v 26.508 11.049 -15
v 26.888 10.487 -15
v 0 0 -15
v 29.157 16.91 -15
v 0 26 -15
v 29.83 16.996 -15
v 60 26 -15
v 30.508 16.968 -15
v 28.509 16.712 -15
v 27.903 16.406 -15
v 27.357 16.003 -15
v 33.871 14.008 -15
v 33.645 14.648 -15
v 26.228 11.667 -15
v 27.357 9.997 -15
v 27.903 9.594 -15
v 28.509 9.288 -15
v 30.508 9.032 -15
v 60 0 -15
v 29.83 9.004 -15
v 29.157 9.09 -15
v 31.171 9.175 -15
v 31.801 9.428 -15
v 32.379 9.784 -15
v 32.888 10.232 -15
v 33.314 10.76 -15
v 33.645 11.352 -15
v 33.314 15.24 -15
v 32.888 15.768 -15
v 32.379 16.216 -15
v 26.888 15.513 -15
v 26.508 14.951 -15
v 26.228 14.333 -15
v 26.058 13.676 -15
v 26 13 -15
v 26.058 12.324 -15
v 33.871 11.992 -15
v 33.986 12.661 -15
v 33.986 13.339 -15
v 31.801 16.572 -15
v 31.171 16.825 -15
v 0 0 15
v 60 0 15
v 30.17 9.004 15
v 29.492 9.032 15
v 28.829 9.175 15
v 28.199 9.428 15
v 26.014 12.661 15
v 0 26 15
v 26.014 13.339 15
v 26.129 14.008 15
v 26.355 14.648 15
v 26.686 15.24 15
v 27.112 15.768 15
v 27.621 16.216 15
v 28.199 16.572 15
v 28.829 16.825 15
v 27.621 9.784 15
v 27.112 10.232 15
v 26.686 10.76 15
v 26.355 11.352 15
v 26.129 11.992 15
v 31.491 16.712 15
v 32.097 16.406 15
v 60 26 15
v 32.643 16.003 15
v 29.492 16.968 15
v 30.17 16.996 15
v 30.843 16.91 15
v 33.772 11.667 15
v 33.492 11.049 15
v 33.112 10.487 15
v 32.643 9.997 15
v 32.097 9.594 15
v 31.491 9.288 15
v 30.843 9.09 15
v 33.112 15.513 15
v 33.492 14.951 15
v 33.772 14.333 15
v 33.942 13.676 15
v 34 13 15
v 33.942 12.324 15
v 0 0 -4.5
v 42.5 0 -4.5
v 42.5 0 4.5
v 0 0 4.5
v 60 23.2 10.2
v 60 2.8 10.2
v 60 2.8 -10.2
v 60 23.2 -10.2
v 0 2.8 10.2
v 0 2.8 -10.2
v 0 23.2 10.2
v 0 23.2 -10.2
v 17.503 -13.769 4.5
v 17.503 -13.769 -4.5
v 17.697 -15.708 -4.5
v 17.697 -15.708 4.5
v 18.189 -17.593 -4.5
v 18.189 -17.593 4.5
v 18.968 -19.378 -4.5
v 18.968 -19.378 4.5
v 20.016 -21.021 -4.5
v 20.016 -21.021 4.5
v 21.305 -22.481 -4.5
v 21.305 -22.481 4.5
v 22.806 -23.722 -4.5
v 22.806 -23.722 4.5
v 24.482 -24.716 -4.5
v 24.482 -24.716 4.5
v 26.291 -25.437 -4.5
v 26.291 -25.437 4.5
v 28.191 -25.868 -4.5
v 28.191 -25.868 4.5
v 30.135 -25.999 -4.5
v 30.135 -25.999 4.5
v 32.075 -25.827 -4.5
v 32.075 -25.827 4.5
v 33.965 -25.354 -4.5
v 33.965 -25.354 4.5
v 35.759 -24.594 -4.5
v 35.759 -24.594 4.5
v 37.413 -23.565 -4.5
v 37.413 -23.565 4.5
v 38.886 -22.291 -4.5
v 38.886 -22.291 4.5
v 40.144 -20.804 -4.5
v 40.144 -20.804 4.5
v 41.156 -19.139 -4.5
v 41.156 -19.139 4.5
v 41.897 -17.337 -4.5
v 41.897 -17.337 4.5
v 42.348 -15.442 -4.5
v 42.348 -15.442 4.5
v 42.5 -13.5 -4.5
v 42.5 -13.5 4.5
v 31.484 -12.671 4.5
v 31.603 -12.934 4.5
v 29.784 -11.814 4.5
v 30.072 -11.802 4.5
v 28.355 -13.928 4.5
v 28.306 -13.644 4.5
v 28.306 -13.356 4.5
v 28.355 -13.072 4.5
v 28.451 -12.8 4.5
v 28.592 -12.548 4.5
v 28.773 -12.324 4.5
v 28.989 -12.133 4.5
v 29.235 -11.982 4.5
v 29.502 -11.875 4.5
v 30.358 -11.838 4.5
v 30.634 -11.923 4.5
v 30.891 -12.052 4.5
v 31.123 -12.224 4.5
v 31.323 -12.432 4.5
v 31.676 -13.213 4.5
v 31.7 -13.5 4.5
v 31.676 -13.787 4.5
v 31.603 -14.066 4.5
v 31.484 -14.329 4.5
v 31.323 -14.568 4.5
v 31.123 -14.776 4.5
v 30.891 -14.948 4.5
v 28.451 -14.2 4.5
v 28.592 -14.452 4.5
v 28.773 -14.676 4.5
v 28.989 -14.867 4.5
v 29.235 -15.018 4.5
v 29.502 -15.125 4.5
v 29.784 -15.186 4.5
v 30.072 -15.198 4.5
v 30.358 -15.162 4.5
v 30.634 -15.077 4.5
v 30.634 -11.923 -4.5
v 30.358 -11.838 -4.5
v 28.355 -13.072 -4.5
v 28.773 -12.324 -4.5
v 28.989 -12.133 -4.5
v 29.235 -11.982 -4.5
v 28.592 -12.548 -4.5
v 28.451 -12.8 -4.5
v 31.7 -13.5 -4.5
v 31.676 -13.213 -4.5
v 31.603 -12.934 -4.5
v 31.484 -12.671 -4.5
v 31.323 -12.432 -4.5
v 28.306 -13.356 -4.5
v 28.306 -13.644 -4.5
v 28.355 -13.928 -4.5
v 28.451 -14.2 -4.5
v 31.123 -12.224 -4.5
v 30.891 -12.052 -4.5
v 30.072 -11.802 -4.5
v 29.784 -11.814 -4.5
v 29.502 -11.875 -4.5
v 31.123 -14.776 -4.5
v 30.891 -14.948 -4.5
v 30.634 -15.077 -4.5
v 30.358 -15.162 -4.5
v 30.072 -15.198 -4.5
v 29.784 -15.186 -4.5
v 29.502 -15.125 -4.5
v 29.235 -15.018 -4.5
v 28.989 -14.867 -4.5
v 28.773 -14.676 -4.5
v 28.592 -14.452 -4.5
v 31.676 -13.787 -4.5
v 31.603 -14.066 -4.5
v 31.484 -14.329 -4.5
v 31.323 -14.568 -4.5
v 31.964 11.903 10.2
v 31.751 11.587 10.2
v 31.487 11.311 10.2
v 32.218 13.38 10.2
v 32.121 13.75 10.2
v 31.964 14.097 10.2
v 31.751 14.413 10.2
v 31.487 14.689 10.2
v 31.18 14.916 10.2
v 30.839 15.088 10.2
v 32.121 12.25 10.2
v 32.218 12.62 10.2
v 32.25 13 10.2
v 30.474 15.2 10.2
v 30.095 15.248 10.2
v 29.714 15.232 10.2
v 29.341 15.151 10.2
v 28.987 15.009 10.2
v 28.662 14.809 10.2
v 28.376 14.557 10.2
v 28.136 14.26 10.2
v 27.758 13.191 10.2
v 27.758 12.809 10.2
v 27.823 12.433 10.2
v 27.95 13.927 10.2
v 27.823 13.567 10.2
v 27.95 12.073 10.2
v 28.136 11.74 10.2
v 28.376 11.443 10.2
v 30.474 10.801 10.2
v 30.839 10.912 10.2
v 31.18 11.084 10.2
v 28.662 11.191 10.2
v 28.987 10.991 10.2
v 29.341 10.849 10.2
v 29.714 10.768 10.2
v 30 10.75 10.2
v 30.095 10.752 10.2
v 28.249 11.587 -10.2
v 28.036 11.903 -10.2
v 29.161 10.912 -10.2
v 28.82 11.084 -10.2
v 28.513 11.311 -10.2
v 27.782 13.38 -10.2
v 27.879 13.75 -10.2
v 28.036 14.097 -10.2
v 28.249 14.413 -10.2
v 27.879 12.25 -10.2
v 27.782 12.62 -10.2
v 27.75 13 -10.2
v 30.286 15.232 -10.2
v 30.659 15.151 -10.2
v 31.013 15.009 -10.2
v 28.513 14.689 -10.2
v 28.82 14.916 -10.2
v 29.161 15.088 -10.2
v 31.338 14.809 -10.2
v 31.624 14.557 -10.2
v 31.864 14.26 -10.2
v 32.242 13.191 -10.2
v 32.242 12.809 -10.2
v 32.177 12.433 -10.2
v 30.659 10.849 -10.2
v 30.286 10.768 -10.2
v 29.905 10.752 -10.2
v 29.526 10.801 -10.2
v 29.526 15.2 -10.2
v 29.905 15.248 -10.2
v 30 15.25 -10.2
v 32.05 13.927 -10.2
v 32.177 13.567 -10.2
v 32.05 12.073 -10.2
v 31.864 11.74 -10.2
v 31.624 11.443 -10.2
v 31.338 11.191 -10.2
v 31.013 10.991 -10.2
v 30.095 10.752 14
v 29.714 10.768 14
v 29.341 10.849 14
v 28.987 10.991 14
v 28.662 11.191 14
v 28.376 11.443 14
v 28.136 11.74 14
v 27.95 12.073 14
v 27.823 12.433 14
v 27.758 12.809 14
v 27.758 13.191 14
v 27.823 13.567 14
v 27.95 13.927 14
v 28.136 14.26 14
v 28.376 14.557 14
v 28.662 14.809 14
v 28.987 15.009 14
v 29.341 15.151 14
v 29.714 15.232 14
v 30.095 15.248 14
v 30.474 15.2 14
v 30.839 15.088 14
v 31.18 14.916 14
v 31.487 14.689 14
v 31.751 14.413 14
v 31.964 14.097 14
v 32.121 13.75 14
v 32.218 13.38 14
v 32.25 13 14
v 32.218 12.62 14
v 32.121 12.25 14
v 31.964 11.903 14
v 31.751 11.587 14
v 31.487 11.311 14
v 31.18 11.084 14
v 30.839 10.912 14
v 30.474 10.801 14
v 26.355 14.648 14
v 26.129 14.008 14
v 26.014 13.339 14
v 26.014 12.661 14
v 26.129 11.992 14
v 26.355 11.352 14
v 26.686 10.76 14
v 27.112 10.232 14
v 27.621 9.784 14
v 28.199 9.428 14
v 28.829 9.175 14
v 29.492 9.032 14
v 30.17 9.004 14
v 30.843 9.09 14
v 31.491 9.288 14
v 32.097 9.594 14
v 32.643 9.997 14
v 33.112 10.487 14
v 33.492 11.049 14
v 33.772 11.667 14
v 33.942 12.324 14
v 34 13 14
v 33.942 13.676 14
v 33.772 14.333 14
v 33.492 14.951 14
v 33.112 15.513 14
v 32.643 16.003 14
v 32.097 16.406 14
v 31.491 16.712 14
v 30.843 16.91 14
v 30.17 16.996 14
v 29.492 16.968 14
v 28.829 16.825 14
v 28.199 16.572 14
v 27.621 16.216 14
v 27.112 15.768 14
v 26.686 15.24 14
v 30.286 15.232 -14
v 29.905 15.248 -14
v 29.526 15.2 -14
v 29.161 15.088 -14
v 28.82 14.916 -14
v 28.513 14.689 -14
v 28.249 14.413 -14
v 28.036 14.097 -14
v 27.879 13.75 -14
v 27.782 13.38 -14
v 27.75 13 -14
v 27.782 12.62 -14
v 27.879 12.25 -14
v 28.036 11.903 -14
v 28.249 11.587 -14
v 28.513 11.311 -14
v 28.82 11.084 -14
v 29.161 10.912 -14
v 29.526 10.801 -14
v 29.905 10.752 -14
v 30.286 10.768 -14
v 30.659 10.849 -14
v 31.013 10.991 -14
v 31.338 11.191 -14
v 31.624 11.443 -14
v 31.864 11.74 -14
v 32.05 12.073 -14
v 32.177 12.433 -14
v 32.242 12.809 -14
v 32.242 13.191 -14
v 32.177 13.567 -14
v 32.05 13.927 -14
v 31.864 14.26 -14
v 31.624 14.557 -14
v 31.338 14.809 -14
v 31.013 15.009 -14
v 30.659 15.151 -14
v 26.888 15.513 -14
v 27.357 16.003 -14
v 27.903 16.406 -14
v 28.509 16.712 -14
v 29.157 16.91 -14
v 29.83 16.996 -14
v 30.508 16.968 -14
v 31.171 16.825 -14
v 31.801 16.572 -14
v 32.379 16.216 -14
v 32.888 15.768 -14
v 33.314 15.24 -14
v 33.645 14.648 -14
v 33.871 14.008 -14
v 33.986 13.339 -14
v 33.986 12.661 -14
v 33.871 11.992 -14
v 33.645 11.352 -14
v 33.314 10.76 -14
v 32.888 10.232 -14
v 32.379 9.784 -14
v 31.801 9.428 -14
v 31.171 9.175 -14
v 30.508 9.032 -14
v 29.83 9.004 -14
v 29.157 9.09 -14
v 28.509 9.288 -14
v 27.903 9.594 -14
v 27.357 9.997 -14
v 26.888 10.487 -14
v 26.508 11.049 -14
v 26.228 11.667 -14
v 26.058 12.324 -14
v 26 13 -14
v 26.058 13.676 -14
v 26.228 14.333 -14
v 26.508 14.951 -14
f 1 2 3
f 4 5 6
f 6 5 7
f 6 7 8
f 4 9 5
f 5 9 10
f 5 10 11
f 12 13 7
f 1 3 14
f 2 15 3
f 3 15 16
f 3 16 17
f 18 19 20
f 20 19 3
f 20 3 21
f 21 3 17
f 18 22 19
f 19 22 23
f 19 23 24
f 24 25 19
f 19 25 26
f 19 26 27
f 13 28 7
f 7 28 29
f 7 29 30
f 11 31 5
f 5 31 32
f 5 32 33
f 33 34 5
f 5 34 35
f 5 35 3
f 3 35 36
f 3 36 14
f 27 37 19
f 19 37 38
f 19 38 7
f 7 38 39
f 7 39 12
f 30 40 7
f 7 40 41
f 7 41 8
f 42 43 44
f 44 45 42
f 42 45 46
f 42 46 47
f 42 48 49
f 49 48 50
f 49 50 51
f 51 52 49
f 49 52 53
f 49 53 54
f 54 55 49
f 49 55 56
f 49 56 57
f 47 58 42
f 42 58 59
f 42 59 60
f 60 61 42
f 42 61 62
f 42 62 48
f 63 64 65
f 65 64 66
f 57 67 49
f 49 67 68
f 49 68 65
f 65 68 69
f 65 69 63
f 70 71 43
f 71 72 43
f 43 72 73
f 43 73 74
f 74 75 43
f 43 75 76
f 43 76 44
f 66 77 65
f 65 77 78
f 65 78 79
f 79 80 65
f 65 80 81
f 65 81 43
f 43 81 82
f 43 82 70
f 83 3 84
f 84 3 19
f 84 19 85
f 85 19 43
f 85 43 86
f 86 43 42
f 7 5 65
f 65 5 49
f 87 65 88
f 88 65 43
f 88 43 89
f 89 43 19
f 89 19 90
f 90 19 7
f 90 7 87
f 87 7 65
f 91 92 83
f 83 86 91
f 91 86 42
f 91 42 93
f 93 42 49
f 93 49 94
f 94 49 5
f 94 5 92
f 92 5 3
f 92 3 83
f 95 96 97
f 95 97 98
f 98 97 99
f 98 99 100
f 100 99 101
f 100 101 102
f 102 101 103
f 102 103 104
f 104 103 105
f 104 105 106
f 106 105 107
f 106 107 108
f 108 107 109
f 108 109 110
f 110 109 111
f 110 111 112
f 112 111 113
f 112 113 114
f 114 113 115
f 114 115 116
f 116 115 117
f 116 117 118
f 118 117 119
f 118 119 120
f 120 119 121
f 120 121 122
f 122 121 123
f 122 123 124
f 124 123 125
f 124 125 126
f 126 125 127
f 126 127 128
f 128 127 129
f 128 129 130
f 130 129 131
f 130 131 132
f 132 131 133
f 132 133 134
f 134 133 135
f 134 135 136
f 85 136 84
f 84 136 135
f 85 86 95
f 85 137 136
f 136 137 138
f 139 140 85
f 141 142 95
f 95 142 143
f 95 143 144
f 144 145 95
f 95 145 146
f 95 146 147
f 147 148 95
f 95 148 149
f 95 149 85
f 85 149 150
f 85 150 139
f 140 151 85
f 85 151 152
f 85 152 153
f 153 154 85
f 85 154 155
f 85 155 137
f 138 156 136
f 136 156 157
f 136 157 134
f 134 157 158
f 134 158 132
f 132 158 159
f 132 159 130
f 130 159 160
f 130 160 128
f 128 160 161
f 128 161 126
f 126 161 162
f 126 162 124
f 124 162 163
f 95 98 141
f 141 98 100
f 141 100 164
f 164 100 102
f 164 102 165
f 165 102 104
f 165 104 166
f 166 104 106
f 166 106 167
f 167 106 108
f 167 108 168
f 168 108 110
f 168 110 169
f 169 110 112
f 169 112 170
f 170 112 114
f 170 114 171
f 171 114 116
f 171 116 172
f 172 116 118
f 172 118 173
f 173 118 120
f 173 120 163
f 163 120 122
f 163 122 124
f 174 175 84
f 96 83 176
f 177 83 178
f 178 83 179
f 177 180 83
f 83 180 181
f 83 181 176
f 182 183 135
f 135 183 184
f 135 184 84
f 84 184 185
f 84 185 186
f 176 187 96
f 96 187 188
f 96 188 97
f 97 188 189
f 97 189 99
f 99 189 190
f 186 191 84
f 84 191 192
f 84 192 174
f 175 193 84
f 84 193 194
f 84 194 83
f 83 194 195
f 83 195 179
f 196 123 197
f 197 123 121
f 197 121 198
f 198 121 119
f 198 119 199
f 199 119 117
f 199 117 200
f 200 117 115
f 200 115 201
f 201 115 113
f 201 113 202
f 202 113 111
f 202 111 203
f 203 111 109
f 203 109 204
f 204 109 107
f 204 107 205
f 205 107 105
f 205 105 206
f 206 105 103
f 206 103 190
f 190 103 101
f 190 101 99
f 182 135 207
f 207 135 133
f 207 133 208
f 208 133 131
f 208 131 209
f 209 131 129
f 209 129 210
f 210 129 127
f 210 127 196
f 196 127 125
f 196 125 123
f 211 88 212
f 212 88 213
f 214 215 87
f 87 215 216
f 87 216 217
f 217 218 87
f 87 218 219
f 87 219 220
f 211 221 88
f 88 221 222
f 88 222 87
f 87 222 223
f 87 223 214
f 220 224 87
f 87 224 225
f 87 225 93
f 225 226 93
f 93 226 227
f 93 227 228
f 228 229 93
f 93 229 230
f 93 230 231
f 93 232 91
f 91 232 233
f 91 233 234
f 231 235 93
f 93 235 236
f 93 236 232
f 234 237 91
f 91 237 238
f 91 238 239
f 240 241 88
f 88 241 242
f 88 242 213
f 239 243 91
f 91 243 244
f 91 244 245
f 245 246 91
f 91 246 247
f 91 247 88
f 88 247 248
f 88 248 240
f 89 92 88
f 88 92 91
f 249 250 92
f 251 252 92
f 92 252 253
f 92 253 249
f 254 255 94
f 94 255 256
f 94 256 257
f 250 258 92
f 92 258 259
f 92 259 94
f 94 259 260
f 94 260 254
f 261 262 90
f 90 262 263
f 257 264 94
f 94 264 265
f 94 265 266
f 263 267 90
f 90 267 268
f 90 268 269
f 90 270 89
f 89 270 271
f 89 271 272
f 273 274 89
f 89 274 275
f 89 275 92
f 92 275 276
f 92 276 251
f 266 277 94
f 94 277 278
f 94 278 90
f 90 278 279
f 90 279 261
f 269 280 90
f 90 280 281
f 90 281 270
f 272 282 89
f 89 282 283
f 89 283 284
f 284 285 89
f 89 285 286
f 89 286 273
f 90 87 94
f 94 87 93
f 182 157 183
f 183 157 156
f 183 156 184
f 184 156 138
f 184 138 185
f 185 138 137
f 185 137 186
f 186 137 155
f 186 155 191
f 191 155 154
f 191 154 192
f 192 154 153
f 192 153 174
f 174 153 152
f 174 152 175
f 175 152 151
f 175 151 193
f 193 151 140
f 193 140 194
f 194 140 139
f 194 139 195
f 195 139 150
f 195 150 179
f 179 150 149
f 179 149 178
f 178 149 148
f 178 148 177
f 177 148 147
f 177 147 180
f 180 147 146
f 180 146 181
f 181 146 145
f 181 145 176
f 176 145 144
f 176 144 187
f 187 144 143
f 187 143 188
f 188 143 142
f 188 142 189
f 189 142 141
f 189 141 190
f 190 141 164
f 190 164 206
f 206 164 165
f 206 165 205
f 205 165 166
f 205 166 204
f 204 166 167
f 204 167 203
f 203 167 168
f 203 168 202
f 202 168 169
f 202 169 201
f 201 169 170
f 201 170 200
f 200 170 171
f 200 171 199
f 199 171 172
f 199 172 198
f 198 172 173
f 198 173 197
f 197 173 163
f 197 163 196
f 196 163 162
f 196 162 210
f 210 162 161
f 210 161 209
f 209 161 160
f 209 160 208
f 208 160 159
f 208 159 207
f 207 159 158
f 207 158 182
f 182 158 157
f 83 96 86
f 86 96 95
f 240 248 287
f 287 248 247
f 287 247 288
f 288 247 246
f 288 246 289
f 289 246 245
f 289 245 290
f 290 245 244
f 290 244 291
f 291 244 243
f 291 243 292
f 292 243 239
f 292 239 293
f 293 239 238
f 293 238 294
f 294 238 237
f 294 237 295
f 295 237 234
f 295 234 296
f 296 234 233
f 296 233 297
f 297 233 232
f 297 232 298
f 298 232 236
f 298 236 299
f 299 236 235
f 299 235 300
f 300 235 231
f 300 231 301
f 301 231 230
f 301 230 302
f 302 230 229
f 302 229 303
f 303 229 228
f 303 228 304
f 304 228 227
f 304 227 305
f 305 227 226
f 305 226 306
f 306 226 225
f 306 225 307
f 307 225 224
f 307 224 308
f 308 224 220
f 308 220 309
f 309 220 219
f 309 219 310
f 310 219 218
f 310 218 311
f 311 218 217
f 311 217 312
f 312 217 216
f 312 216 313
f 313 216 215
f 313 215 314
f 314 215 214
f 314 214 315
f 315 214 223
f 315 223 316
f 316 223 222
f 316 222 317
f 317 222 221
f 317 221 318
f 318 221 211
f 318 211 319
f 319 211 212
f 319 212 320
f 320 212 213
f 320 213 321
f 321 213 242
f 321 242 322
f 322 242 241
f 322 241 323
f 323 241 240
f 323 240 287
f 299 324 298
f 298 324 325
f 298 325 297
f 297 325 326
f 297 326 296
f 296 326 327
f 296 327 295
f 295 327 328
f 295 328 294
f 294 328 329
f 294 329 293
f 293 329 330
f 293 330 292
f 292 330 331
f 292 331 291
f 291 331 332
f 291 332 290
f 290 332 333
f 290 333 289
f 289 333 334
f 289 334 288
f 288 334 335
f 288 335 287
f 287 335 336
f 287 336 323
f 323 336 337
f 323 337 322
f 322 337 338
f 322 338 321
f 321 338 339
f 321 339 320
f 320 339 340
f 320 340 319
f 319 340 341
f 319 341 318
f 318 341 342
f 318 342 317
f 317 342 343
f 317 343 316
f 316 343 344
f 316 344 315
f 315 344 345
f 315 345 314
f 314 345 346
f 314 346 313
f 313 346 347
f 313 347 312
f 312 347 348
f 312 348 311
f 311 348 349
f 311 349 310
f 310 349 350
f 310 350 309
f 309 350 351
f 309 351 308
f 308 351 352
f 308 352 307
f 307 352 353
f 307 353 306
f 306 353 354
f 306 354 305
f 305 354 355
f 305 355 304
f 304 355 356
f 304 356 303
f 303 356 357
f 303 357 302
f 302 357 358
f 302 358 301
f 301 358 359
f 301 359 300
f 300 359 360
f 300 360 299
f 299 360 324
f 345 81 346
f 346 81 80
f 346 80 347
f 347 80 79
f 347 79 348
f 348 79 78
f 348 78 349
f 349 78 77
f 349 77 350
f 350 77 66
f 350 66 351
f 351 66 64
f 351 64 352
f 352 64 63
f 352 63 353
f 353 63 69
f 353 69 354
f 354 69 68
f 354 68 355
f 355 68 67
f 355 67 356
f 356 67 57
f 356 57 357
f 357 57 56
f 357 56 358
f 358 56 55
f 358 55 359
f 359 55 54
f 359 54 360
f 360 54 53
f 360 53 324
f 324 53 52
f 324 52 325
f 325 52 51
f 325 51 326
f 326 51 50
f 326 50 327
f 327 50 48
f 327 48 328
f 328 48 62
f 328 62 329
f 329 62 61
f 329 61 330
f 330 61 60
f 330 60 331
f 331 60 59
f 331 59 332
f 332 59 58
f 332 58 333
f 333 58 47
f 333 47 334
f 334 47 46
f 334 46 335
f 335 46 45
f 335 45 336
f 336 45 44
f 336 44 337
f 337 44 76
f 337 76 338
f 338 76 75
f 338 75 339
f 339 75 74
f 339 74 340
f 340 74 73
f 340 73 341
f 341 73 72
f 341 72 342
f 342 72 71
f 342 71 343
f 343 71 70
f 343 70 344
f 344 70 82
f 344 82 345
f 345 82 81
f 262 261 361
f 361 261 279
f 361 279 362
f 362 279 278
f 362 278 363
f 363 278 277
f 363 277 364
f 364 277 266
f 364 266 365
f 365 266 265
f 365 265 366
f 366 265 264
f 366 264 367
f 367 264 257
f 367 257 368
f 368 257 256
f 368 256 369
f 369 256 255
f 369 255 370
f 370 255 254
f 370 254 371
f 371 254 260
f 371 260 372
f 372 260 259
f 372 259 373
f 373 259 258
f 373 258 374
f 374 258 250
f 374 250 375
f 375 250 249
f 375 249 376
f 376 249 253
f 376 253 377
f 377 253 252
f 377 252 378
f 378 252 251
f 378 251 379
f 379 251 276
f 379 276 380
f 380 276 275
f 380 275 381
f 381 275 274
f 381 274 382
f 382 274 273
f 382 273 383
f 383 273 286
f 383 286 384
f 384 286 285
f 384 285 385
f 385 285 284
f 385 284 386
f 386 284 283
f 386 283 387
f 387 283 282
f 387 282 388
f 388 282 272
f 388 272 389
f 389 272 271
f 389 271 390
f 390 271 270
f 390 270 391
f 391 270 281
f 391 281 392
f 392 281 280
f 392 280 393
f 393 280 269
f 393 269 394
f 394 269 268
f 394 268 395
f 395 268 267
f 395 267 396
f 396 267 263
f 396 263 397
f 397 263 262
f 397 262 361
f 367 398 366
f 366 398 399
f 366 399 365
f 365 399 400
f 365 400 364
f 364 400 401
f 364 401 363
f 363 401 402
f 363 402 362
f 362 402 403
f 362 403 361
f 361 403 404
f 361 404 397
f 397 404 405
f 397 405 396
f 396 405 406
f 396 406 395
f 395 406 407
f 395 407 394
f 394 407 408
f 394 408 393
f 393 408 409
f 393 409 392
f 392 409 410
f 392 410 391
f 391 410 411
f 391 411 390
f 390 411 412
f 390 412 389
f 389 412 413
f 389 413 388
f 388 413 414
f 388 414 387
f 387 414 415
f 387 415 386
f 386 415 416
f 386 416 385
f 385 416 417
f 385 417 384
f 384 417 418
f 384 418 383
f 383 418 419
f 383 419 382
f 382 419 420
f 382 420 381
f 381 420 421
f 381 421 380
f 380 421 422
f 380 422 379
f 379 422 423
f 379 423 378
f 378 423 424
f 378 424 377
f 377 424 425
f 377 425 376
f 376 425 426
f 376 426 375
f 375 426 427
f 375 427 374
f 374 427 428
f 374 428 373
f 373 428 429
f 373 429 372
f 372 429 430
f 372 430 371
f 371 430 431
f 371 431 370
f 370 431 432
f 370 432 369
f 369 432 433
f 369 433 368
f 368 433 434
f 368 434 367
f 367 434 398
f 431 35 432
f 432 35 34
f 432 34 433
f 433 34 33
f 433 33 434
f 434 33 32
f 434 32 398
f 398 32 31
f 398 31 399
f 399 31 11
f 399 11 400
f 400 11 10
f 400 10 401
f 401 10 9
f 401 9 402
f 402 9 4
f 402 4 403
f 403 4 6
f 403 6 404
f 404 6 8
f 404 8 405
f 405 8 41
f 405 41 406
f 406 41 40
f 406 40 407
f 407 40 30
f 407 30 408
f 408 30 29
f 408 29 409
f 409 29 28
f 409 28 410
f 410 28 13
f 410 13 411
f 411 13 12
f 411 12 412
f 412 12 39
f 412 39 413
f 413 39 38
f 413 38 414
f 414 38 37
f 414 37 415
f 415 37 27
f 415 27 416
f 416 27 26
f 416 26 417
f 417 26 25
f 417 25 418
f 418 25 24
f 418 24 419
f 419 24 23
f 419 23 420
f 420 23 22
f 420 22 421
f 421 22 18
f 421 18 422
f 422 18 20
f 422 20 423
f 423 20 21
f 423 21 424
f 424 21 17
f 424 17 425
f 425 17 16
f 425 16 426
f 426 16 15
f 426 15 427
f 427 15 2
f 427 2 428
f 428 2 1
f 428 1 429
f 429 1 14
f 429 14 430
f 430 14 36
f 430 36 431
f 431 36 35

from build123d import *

# Parameters (mm, degrees)
ESQUISSE1_W                                        = 30
ESQUISSE1_H                                        = 26
BOSS_EXTRU_1_DEPTH                                 = 60
BOSS_EXTRU_2_DEPTH                                 = 4.5
ESQUISSE3_W                                        = 20.4
ESQUISSE3_H                                        = 20.4
ENL_V_MAT_EXTRU_1_DEPTH                            = 60
D_GAGEMENT_M31_D                                   = 3.4
NERVURE3_REACH                                     = 69.089
ESQUISSE7_WALL_W                                   = 158.445223638
ESQUISSE7_WALL_H                                   = 9
CHAMBRAGE_POUR_VIS_T_TE_HEXAGONALE_M41_D           = 4.5
CHAMBRAGE_POUR_VIS_T_TE_HEXAGONALE_M41_DEPTH       = 4.8
CHAMBRAGE_POUR_VIS_T_TE_HEXAGONALE_M41_CBORE_D     = 8
CHAMBRAGE_POUR_VIS_T_TE_HEXAGONALE_M41_CBORE_DEPTH = 1


with BuildPart() as part:
    # Esquisse1 → Boss.-Extru.1 (new body)
    with BuildSketch(Plane(origin=(0, 0, 0), x_dir=(0, 0, -1), z_dir=(1, 0, 0))):
        with Locations((0, 13)):
            Rectangle(ESQUISSE1_W, ESQUISSE1_H)
    extrude(amount=BOSS_EXTRU_1_DEPTH)

    # Esquisse4 → Boss.-Extru.2 (add, symmetric)
    with BuildSketch(Plane.XY):
        with BuildLine():
            Line((17.5, 0), (17.5, -13.5))
            ThreePointArc((17.5, -13.5), (30, -26), (42.5, -13.5))
            Line((42.5, -13.5), (42.5, 0))
            Line((42.5, 0), (17.5, 0))
        make_face()
    extrude(amount=BOSS_EXTRU_2_DEPTH, both=True)

    # Esquisse3 → Enlèv. mat.-Extru.1 (cut)
    with BuildSketch(Plane.ZY):
        with Locations((0, 13)):
            Rectangle(ESQUISSE3_W, ESQUISSE3_H)
    extrude(amount=-ENL_V_MAT_EXTRU_1_DEPTH, mode=Mode.SUBTRACT)

    # Dégagement M31 (through all)
    with Locations(Plane.XY.offset(4.5)):
        with Locations((30, -13.5)):
            Hole(D_GAGEMENT_M31_D / 2)

    # Esquisse7 wall → Nervure3 (add, up to next)
    with BuildSketch(Plane(origin=(8.75, -6.883592551, 0), x_dir=(0.785943249757, -0.618298639947, 0), z_dir=(0.618298639947, 0.785943249757, 0)), mode=Mode.PRIVATE) as nervure3_sk1:
        Rectangle(ESQUISSE7_WALL_W, ESQUISSE7_WALL_H)
    nervure3_tool1 = extrude(nervure3_sk1.sketch, amount=NERVURE3_REACH, mode=Mode.PRIVATE) - part.part
    add(nervure3_tool1.solids().sort_by_distance((8.75, -6.883592551, 0))[0])

    # Chambrage pour vis à tête hexagonale M41
    with Locations(Plane.XY.offset(15)):
        with Locations((30, 13)):
            chambrage_pour_vis_t_te_hexagonale_m41 = CounterBoreHole(CHAMBRAGE_POUR_VIS_T_TE_HEXAGONALE_M41_D / 2, CHAMBRAGE_POUR_VIS_T_TE_HEXAGONALE_M41_CBORE_D / 2, CHAMBRAGE_POUR_VIS_T_TE_HEXAGONALE_M41_CBORE_DEPTH, depth=CHAMBRAGE_POUR_VIS_T_TE_HEXAGONALE_M41_DEPTH)

    # Symétrie1: Chambrage pour vis à tête hexagonale M41 across plane
    add(chambrage_pour_vis_t_te_hexagonale_m41.mirror(Plane.XY), mode=Mode.SUBTRACT)


solid = part.part
